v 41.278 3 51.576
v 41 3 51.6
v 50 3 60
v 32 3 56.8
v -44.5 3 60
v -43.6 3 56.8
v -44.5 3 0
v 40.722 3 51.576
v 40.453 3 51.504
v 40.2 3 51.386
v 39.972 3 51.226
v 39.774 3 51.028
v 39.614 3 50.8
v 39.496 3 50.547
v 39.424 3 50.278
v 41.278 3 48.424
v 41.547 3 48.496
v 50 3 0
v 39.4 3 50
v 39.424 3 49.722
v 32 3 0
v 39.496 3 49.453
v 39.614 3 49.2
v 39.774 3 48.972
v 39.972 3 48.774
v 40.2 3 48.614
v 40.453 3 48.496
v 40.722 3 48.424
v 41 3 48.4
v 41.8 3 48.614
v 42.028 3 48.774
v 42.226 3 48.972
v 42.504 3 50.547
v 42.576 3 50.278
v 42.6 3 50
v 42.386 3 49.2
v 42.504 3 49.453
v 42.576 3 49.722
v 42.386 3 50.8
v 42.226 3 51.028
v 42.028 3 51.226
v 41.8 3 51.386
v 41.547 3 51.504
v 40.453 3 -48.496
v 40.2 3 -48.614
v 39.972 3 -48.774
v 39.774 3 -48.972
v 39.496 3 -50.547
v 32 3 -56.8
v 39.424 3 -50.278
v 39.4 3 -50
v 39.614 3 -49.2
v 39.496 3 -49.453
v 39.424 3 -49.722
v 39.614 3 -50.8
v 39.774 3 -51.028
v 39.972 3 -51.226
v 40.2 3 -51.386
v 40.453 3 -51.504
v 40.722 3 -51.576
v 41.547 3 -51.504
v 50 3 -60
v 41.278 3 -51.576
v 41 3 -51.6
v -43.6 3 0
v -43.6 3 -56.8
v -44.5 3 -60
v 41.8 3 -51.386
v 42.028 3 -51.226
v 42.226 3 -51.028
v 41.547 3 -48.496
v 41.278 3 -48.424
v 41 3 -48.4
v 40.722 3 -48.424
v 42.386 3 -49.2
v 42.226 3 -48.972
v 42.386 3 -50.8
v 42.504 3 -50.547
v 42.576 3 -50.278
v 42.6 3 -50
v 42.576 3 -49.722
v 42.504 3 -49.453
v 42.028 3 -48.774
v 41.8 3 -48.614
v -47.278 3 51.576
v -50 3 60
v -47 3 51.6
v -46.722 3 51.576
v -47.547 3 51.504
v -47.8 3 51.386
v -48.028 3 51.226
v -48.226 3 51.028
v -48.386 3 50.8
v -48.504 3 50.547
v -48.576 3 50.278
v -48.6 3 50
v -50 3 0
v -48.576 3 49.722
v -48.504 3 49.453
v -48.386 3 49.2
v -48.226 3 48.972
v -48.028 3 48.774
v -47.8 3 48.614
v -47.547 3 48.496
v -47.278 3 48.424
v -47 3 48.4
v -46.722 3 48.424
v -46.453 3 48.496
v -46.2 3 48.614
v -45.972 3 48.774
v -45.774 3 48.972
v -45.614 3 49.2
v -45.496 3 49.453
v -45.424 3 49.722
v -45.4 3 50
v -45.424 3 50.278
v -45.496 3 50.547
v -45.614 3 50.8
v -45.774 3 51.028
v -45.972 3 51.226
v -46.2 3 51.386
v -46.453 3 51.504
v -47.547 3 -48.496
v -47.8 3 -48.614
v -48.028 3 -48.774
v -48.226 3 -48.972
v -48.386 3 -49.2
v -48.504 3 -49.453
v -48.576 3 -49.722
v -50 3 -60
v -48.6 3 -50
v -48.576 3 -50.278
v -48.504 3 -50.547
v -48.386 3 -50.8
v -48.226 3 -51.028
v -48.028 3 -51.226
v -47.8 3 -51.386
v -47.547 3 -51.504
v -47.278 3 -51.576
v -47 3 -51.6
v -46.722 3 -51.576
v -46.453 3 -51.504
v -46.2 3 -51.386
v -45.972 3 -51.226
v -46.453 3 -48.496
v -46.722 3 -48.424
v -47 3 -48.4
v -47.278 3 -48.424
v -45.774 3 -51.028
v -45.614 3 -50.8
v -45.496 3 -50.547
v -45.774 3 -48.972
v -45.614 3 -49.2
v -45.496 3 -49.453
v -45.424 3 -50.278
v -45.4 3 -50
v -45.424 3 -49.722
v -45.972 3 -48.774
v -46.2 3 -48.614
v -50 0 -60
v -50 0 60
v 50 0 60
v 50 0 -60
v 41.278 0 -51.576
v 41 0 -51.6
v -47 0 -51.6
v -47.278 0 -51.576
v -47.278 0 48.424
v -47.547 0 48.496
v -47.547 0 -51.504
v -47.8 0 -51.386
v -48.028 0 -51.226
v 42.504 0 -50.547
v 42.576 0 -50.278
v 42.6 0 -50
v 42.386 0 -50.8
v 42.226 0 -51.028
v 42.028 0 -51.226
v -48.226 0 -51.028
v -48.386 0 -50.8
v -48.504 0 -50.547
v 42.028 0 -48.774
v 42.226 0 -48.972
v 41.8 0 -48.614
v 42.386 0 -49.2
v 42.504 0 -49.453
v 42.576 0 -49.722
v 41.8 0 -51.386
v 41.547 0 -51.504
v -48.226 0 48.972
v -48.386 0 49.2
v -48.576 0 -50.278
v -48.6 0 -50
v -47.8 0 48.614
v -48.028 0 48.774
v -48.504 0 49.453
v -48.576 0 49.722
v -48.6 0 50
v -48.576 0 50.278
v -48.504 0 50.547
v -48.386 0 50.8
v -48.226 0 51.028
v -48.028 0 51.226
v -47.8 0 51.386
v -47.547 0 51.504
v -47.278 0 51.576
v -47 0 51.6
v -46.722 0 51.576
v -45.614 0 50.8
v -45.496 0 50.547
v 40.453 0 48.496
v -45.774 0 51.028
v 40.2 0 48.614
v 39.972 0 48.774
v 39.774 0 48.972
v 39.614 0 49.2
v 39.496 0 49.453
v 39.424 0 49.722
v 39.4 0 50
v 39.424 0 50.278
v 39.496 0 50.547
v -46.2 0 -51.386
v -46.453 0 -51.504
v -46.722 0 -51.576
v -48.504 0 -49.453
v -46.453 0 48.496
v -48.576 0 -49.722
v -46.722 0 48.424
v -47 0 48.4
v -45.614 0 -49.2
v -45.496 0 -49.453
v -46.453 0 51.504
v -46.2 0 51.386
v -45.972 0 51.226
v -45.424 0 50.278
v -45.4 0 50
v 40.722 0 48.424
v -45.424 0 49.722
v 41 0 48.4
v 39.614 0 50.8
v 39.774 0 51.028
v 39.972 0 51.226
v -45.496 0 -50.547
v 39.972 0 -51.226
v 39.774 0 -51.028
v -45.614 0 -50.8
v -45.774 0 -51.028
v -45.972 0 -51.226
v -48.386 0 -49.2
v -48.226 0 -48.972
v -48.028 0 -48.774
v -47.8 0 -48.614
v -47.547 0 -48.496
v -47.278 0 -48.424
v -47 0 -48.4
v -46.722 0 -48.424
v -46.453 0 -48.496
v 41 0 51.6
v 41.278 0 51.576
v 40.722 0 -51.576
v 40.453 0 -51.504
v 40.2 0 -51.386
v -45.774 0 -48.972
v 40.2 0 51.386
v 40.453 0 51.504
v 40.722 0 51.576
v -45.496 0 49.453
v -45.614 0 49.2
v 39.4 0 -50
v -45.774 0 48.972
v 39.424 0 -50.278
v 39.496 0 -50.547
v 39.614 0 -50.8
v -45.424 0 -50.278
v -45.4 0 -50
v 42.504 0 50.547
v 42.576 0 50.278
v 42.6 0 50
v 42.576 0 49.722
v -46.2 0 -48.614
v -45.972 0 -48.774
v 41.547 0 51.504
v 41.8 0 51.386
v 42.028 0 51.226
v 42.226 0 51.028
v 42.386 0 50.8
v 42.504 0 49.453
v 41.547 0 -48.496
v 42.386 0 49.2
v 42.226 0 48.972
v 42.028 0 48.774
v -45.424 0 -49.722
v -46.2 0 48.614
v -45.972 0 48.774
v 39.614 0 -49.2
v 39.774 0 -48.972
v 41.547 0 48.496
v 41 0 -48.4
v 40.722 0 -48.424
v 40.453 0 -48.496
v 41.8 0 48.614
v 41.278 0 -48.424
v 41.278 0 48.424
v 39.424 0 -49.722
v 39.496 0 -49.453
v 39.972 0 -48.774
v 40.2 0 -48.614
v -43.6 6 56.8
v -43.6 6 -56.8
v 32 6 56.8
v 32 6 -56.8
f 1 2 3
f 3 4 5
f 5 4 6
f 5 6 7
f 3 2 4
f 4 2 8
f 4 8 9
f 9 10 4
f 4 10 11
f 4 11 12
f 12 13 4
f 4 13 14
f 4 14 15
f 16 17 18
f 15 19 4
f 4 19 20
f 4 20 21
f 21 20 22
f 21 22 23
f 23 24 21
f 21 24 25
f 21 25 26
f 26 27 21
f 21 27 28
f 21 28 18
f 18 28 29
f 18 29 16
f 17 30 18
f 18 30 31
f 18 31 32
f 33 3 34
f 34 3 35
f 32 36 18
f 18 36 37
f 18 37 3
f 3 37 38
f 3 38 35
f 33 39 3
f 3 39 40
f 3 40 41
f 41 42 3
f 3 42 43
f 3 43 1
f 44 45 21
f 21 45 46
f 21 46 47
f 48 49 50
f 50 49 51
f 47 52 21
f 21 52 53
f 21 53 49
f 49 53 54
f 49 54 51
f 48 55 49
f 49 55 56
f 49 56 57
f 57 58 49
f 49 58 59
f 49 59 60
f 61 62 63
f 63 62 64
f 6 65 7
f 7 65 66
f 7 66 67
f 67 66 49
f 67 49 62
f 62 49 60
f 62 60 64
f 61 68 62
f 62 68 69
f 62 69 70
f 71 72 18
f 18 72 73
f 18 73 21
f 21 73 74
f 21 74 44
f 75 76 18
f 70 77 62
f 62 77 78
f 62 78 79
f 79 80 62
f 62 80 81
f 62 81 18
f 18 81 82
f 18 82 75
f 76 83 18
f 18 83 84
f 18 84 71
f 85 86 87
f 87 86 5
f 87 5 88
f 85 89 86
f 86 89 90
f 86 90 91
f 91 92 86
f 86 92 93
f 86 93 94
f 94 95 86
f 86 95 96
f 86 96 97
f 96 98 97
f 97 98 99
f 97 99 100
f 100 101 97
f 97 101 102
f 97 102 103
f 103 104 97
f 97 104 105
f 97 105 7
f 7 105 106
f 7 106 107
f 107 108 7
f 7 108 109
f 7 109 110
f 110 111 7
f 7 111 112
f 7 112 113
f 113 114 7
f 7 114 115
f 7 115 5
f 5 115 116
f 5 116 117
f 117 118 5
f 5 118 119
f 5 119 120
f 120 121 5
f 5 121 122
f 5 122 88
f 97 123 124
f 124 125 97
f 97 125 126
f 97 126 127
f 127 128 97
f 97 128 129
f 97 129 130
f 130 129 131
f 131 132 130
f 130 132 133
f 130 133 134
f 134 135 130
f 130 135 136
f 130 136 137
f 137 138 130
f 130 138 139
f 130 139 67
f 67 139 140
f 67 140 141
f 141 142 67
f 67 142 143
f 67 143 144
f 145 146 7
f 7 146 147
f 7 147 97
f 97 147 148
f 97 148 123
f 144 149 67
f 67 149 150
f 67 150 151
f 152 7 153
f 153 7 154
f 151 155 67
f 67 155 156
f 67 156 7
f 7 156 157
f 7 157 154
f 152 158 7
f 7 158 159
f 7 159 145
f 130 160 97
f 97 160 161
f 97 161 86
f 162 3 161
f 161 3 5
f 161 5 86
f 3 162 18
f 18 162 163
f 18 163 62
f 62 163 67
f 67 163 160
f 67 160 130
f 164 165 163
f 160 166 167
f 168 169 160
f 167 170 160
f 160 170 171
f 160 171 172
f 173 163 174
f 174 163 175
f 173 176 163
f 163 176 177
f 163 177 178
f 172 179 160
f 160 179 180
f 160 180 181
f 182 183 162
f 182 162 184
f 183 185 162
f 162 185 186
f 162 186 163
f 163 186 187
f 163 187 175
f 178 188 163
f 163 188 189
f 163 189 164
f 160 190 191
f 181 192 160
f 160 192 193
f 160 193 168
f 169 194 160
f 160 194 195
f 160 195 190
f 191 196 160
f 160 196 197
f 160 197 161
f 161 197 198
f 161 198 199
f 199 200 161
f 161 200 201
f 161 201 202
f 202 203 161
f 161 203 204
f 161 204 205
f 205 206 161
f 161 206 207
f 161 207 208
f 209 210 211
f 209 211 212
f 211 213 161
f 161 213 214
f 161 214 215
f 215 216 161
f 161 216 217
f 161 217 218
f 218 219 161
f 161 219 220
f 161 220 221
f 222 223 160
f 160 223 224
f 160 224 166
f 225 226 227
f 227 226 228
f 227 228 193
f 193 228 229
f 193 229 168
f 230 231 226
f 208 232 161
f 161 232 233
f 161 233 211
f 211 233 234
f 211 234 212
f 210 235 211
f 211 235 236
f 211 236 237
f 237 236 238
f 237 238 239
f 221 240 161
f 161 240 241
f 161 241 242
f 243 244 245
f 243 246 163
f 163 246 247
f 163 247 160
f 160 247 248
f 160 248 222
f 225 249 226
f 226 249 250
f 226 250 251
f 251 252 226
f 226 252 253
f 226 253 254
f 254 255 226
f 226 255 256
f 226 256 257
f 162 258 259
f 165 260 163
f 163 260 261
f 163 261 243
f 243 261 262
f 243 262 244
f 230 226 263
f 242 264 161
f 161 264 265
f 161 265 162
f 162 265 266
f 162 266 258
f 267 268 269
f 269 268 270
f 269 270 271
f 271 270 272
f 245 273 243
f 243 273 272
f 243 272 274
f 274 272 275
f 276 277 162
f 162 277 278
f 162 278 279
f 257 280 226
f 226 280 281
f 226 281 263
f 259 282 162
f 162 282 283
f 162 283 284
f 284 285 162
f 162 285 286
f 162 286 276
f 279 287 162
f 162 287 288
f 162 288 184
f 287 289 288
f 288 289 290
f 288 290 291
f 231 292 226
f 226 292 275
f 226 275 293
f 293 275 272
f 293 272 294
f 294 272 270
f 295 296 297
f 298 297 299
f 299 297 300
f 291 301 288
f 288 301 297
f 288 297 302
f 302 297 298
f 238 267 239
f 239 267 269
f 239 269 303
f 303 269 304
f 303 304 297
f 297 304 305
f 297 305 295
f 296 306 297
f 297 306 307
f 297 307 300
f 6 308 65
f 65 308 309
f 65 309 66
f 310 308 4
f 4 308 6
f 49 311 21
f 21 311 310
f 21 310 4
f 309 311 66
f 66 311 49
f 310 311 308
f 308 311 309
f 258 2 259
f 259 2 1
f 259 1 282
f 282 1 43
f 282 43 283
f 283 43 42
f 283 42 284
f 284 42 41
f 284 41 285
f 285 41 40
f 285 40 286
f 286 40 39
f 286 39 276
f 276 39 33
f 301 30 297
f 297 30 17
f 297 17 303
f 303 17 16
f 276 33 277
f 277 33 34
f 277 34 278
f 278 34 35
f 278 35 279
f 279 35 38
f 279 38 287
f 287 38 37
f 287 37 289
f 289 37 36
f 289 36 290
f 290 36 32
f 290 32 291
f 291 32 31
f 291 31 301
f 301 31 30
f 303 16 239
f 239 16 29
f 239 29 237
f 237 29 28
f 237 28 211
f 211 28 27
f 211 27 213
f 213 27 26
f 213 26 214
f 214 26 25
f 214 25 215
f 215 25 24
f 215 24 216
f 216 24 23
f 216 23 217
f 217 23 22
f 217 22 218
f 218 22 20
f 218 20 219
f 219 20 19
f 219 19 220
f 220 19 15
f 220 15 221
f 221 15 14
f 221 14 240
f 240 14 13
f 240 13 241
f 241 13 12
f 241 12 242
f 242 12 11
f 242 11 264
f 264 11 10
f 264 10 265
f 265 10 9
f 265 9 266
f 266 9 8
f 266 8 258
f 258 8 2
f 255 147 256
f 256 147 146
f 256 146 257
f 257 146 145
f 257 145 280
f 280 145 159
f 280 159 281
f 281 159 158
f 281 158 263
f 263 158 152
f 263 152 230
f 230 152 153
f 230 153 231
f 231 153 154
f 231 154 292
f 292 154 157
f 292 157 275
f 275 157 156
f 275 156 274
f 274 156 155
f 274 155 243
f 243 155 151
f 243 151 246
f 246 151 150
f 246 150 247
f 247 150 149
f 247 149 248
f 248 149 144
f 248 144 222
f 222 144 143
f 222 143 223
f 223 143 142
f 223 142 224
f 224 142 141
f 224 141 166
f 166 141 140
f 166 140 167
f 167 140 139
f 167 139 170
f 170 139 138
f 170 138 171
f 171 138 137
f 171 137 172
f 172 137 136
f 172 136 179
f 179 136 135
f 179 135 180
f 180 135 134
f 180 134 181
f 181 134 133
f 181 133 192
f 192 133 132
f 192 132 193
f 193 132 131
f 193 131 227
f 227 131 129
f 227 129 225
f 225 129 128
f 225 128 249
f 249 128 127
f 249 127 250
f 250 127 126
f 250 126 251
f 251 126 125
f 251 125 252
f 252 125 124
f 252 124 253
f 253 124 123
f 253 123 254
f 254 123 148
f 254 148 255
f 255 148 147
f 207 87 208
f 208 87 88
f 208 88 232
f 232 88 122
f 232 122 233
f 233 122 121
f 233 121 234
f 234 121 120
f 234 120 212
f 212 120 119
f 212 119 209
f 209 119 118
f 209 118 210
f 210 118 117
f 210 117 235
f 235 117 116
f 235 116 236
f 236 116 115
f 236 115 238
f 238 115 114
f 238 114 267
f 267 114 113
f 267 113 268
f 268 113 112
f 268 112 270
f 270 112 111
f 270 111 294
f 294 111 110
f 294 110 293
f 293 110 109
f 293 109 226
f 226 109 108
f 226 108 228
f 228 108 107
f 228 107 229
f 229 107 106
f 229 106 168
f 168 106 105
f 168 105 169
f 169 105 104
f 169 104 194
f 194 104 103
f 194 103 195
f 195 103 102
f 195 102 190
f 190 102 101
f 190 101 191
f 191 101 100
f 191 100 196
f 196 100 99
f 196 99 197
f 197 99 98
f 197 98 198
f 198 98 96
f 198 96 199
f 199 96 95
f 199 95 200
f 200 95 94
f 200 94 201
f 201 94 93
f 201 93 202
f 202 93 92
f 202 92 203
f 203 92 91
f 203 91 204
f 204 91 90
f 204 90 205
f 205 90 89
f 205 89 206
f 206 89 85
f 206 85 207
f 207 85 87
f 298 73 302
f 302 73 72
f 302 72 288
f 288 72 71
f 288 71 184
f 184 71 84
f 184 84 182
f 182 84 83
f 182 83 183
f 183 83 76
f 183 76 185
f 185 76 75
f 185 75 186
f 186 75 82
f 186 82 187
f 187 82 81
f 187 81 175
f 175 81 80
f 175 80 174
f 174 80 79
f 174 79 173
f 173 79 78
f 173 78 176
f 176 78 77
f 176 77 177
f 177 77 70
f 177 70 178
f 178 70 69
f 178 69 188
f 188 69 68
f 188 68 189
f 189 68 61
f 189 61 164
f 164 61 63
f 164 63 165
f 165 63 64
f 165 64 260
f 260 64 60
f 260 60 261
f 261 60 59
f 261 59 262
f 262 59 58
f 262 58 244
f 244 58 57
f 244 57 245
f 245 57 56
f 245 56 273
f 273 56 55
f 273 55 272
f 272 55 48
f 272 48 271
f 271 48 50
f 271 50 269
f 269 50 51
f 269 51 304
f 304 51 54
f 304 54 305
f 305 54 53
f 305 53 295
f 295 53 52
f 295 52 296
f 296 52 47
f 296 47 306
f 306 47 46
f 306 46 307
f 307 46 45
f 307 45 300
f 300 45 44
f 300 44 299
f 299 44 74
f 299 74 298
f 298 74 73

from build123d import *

# Parameters (mm, degrees)
SKETCH1_W           = 100
SKETCH1_H           = 120
BOSS_EXTRUDE1_DEPTH = 3
SKETCH2_W           = 75.6
SKETCH2_H           = 113.6
BOSS_EXTRUDE2_DEPTH = 3
SKETCH3_R           = 1.6
CUT_EXTRUDE1_DEPTH  = 79.160092119


with BuildPart() as part:
    # Sketch1 → Boss-Extrude1 (new body)
    with BuildSketch(Plane(origin=(0, 0, 0), x_dir=(1, 0, 0), z_dir=(0, 1, 0))):
        Rectangle(SKETCH1_W, SKETCH1_H)
    extrude(amount=BOSS_EXTRUDE1_DEPTH)

    # Sketch2 → Boss-Extrude2 (add)
    with BuildSketch(Plane(origin=(0, 3, 0), x_dir=(1, 0, 0), z_dir=(0, 1, 0))):
        with Locations((-5.8, 0)):
            Rectangle(SKETCH2_W, SKETCH2_H)
    extrude(amount=BOSS_EXTRUDE2_DEPTH)

    # Sketch3 → Cut-Extrude1 (cut, through all)
    with BuildSketch(Plane(origin=(0, 3, 0), x_dir=(1, 0, 0), z_dir=(0, 1, 0))):
        with Locations(Location((41, -50, 0), (0, 0, 270))):
            Circle(SKETCH3_R)
        with Locations(Location((41, 50, 0), (0, 0, 270))):
            Circle(SKETCH3_R)
        with Locations(Location((-47, -50, 0), (0, 0, 270))):
            Circle(SKETCH3_R)
        with Locations(Location((-47, 50, 0), (0, 0, 270))):
            Circle(SKETCH3_R)
    extrude(amount=-CUT_EXTRUDE1_DEPTH, mode=Mode.SUBTRACT)


solid = part.part
